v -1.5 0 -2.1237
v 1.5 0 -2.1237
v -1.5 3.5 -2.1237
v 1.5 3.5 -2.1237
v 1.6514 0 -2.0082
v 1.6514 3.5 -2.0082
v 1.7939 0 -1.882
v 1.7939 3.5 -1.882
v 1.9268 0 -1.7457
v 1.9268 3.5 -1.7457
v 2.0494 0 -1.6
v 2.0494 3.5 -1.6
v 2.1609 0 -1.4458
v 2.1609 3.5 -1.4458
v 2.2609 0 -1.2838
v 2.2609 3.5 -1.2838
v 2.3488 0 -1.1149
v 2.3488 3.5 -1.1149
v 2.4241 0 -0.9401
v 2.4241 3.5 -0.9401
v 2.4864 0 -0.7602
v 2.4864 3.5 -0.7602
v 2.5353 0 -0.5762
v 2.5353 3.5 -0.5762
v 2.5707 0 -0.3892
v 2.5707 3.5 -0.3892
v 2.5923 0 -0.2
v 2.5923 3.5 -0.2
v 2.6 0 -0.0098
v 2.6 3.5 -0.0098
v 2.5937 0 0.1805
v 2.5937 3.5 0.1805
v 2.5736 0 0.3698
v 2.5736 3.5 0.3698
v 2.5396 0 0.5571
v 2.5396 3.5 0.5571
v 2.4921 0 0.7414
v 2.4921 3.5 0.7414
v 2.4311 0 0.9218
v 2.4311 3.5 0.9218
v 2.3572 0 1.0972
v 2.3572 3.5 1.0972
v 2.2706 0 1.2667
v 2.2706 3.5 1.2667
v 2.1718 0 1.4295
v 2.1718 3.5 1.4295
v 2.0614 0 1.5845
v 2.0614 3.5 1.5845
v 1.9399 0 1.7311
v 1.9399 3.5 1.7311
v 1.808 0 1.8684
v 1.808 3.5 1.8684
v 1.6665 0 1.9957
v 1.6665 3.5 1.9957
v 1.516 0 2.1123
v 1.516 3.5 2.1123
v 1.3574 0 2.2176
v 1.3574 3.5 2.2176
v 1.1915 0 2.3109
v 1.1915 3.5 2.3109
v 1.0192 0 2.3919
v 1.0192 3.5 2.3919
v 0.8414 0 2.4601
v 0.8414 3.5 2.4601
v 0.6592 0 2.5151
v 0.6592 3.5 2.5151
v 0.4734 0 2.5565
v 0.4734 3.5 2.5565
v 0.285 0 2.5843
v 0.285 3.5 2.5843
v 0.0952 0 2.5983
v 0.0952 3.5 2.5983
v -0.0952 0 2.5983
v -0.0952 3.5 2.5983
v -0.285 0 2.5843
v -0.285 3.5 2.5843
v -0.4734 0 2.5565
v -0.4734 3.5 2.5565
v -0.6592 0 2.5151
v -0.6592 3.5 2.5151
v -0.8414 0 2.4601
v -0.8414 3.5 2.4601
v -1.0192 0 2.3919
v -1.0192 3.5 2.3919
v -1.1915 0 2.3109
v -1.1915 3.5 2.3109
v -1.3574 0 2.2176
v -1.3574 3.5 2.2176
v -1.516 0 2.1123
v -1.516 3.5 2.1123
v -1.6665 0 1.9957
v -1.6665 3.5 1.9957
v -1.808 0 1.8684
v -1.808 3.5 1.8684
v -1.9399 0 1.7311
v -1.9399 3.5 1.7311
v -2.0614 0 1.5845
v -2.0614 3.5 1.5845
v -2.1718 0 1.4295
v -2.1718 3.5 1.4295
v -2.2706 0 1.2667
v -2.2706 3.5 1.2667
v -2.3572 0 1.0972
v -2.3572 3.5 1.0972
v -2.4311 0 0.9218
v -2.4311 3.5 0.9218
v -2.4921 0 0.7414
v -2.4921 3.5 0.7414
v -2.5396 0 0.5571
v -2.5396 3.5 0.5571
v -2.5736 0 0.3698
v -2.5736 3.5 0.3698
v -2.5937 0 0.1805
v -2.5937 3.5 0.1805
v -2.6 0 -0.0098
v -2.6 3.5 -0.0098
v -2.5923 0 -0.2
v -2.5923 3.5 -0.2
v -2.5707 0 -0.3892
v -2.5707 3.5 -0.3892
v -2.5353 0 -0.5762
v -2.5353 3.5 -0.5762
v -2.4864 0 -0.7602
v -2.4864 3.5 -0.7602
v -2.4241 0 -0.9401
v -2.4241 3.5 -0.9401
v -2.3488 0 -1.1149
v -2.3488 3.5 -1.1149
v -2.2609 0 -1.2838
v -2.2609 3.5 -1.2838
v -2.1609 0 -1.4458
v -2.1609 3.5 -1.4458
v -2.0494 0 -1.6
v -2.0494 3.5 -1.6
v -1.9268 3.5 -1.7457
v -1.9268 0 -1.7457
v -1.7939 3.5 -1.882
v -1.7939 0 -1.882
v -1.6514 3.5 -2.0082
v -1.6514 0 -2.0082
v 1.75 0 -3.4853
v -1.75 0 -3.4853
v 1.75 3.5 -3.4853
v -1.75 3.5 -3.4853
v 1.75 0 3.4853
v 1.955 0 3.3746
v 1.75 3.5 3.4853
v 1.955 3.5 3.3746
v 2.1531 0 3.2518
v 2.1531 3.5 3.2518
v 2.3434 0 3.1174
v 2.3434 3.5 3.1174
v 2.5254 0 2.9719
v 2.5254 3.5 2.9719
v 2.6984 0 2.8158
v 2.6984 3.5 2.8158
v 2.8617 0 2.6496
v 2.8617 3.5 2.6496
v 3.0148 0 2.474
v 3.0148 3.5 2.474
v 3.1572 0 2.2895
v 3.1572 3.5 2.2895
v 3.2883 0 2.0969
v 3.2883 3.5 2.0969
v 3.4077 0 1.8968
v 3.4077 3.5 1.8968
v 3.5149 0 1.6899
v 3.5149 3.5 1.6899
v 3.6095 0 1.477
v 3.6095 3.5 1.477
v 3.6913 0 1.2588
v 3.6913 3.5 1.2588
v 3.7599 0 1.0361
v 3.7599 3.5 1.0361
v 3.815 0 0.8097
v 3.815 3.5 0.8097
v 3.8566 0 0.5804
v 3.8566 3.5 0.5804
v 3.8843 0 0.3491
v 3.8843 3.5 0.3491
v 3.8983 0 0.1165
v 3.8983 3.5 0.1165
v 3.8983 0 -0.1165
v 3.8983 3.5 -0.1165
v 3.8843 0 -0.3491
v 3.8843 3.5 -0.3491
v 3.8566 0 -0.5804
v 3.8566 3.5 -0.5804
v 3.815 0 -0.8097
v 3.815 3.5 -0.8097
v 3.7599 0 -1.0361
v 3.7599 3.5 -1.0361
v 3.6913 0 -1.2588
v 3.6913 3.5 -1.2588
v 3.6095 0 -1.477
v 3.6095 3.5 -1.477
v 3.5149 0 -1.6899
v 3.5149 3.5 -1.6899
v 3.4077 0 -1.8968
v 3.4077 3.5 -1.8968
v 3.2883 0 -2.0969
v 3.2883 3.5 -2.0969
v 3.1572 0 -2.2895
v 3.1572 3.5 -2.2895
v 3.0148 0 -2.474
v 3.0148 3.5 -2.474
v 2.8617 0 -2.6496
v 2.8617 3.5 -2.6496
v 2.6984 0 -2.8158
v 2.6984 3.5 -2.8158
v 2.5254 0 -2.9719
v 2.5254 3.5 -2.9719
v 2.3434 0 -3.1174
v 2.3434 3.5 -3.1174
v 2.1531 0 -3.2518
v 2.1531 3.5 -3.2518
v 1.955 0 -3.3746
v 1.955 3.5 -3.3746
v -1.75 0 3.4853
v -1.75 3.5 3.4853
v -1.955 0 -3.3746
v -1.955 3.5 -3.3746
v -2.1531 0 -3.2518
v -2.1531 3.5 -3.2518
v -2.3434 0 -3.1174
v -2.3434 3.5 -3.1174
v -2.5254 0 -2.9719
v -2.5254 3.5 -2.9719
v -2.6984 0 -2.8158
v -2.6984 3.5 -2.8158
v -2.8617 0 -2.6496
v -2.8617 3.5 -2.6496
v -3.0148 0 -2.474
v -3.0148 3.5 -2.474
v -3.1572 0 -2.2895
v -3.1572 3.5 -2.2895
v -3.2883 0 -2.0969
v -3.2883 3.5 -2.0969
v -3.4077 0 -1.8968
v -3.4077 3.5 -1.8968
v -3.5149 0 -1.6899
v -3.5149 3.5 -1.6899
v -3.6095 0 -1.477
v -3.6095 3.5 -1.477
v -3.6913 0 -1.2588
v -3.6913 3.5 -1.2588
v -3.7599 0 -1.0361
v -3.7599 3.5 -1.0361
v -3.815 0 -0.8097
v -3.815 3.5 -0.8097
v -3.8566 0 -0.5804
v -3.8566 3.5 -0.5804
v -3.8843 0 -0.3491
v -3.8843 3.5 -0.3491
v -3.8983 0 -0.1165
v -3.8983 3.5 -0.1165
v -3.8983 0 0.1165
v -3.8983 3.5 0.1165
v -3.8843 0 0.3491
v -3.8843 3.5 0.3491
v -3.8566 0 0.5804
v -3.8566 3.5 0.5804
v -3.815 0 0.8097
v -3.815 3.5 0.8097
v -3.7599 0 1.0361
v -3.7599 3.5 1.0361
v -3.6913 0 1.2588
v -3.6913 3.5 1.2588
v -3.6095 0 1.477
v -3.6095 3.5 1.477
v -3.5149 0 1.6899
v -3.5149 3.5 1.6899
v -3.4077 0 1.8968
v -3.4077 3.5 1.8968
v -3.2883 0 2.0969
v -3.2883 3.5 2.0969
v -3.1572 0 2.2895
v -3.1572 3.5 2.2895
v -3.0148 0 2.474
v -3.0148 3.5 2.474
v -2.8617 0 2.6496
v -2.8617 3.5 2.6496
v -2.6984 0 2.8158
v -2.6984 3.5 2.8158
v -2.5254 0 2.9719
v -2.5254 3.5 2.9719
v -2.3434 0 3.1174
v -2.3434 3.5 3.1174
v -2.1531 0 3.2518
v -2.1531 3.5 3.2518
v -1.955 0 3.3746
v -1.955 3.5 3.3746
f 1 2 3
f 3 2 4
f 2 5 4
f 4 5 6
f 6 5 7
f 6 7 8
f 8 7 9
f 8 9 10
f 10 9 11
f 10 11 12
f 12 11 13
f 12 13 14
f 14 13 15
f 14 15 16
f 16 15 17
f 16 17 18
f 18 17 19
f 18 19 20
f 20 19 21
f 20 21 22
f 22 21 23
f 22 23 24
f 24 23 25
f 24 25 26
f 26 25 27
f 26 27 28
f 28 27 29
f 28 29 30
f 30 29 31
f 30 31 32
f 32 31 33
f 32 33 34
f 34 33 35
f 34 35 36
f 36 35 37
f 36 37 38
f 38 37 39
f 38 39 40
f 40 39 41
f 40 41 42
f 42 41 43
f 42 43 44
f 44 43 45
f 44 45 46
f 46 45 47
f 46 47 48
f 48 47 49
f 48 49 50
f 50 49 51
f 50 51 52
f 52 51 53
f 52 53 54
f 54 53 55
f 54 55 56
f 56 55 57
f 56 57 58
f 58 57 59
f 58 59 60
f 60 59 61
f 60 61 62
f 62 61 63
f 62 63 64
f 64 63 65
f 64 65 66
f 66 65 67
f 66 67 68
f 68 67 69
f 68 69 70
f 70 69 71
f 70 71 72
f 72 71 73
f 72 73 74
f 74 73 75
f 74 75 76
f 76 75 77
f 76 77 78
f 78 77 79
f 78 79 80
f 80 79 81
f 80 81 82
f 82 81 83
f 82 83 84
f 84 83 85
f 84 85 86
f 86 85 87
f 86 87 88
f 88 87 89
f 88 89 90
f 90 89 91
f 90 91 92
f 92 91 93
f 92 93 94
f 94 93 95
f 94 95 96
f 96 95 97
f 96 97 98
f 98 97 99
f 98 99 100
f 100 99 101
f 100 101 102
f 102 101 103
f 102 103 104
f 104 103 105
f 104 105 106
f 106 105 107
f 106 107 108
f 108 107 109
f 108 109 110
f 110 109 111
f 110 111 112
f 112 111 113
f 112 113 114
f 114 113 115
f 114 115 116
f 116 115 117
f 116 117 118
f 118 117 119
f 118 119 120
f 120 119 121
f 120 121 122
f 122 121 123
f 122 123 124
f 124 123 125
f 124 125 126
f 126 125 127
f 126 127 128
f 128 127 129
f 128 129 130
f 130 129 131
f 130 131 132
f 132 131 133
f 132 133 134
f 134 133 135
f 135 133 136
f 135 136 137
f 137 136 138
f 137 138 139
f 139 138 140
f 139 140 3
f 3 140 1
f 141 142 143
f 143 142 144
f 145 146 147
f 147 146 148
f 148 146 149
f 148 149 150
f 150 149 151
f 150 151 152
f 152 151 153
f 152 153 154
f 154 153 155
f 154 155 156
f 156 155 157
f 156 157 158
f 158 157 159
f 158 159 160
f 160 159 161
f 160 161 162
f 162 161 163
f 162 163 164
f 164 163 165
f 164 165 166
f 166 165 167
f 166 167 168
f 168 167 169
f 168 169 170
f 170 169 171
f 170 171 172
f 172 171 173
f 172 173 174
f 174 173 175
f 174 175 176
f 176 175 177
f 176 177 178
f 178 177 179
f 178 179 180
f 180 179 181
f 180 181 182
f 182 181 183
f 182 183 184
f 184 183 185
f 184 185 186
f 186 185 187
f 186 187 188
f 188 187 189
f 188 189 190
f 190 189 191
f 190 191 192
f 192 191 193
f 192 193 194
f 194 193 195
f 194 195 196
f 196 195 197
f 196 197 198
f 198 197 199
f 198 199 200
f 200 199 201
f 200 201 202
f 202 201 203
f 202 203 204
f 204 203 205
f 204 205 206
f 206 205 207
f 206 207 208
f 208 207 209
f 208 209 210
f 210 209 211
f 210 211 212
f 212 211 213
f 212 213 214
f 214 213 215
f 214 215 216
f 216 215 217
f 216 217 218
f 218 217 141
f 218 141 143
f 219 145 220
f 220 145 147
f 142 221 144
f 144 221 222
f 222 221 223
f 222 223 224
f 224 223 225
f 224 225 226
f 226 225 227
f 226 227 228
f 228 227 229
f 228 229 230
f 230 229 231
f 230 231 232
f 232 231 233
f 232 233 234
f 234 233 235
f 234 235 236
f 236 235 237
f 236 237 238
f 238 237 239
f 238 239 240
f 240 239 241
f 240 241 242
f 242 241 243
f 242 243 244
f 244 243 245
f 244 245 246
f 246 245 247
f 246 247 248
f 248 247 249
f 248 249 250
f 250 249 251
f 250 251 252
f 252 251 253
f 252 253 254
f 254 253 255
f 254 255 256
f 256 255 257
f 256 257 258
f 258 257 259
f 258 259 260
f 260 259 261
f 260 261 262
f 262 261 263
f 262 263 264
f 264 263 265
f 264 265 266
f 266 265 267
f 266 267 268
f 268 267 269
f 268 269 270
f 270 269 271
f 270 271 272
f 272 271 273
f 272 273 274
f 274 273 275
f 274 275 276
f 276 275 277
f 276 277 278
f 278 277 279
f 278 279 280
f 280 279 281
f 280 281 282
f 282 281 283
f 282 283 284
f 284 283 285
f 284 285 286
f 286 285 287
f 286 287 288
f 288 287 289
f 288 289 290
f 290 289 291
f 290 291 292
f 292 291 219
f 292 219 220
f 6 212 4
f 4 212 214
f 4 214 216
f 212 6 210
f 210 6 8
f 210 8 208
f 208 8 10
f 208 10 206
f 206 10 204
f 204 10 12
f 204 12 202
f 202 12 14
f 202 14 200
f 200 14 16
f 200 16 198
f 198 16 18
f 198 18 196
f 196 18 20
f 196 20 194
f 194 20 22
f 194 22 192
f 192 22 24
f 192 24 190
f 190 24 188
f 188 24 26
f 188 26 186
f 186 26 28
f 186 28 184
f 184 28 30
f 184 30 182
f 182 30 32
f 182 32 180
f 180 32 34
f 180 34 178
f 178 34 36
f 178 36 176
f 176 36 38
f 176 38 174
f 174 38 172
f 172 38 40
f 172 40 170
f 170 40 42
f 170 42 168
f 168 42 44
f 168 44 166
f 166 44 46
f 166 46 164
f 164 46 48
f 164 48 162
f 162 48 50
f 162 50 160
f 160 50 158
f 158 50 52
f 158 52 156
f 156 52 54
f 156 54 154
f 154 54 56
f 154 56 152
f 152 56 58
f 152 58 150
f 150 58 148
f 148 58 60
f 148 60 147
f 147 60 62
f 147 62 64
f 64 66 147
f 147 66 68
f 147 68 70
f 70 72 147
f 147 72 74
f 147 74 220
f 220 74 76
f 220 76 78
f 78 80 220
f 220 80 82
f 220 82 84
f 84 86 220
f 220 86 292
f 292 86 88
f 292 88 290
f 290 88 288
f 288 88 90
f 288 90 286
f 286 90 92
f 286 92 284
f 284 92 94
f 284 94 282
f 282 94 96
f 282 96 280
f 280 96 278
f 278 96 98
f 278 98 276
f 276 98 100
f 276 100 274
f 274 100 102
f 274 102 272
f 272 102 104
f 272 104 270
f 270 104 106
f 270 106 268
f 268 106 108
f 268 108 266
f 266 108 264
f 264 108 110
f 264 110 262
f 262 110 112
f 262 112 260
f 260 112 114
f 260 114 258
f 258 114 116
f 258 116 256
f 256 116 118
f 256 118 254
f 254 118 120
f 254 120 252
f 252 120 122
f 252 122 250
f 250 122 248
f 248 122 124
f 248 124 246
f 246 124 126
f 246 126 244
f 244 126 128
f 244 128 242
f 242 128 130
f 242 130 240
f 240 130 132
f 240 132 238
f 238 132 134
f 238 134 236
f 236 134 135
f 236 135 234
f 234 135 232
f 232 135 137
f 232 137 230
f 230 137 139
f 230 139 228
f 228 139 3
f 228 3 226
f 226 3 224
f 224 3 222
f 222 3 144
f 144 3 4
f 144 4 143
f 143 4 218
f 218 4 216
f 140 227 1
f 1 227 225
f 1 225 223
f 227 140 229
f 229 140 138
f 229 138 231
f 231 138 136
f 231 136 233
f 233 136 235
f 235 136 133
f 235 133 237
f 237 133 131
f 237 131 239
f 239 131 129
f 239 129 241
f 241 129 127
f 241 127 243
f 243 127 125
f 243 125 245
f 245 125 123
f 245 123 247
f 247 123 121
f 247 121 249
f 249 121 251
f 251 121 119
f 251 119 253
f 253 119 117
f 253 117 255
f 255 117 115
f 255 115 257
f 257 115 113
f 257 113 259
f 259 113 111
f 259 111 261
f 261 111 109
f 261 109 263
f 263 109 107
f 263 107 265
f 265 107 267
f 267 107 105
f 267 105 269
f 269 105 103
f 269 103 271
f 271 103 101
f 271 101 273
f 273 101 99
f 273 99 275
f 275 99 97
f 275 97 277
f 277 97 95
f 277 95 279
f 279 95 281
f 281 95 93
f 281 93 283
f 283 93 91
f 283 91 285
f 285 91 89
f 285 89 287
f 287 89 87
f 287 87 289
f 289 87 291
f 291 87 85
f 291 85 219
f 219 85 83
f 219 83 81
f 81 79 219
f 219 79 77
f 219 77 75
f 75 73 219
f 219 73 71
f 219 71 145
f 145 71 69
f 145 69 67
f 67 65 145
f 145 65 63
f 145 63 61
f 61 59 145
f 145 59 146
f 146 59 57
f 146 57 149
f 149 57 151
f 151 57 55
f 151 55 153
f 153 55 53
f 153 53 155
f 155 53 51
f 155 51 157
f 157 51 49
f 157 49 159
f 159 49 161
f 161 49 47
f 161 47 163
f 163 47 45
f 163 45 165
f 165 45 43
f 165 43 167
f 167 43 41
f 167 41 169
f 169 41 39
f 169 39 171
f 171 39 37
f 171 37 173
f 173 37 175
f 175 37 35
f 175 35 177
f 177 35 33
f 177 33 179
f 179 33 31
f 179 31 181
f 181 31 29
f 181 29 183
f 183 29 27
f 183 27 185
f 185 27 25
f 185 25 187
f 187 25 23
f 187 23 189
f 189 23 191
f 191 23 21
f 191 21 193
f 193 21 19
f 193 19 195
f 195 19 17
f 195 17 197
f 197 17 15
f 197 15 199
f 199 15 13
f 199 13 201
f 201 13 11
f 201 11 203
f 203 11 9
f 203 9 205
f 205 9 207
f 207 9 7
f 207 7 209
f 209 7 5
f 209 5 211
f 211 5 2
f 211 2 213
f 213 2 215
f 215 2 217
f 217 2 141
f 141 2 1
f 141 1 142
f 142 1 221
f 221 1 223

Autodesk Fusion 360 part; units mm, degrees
sketch "Sketch1" plane through (0, 0, 0) normal (0, 1, 0) x (1, 0, 0)
  arc A0 (-1.5, 2.1237) -> (1.5, 2.1237) centre (0, 0) ccw
  line L0 (-1.5, 2.1237) -> (1.5, 2.1237)
  arc A1 (1.75, -3.4853) -> (1.75, 3.4853) centre (0, 0) ccw
  arc A2 (-1.75, 3.4853) -> (-1.75, -3.4853) centre (0, 0) ccw
  line L1 (-1.75, 3.4853) -> (1.75, 3.4853)
  line L2 (1.75, -3.4853) -> (-1.75, -3.4853)
  dimension "d1" = 2.6
  dimension "d2" = 3
  dimension "d3" = 3.9
  dimension "d4" = 3.9
  dimension "d5" = 3.5
  dimension "d6" = 3.5
extrude "Extrude1" add sketch "Sketch1" along normal blind 3.5
